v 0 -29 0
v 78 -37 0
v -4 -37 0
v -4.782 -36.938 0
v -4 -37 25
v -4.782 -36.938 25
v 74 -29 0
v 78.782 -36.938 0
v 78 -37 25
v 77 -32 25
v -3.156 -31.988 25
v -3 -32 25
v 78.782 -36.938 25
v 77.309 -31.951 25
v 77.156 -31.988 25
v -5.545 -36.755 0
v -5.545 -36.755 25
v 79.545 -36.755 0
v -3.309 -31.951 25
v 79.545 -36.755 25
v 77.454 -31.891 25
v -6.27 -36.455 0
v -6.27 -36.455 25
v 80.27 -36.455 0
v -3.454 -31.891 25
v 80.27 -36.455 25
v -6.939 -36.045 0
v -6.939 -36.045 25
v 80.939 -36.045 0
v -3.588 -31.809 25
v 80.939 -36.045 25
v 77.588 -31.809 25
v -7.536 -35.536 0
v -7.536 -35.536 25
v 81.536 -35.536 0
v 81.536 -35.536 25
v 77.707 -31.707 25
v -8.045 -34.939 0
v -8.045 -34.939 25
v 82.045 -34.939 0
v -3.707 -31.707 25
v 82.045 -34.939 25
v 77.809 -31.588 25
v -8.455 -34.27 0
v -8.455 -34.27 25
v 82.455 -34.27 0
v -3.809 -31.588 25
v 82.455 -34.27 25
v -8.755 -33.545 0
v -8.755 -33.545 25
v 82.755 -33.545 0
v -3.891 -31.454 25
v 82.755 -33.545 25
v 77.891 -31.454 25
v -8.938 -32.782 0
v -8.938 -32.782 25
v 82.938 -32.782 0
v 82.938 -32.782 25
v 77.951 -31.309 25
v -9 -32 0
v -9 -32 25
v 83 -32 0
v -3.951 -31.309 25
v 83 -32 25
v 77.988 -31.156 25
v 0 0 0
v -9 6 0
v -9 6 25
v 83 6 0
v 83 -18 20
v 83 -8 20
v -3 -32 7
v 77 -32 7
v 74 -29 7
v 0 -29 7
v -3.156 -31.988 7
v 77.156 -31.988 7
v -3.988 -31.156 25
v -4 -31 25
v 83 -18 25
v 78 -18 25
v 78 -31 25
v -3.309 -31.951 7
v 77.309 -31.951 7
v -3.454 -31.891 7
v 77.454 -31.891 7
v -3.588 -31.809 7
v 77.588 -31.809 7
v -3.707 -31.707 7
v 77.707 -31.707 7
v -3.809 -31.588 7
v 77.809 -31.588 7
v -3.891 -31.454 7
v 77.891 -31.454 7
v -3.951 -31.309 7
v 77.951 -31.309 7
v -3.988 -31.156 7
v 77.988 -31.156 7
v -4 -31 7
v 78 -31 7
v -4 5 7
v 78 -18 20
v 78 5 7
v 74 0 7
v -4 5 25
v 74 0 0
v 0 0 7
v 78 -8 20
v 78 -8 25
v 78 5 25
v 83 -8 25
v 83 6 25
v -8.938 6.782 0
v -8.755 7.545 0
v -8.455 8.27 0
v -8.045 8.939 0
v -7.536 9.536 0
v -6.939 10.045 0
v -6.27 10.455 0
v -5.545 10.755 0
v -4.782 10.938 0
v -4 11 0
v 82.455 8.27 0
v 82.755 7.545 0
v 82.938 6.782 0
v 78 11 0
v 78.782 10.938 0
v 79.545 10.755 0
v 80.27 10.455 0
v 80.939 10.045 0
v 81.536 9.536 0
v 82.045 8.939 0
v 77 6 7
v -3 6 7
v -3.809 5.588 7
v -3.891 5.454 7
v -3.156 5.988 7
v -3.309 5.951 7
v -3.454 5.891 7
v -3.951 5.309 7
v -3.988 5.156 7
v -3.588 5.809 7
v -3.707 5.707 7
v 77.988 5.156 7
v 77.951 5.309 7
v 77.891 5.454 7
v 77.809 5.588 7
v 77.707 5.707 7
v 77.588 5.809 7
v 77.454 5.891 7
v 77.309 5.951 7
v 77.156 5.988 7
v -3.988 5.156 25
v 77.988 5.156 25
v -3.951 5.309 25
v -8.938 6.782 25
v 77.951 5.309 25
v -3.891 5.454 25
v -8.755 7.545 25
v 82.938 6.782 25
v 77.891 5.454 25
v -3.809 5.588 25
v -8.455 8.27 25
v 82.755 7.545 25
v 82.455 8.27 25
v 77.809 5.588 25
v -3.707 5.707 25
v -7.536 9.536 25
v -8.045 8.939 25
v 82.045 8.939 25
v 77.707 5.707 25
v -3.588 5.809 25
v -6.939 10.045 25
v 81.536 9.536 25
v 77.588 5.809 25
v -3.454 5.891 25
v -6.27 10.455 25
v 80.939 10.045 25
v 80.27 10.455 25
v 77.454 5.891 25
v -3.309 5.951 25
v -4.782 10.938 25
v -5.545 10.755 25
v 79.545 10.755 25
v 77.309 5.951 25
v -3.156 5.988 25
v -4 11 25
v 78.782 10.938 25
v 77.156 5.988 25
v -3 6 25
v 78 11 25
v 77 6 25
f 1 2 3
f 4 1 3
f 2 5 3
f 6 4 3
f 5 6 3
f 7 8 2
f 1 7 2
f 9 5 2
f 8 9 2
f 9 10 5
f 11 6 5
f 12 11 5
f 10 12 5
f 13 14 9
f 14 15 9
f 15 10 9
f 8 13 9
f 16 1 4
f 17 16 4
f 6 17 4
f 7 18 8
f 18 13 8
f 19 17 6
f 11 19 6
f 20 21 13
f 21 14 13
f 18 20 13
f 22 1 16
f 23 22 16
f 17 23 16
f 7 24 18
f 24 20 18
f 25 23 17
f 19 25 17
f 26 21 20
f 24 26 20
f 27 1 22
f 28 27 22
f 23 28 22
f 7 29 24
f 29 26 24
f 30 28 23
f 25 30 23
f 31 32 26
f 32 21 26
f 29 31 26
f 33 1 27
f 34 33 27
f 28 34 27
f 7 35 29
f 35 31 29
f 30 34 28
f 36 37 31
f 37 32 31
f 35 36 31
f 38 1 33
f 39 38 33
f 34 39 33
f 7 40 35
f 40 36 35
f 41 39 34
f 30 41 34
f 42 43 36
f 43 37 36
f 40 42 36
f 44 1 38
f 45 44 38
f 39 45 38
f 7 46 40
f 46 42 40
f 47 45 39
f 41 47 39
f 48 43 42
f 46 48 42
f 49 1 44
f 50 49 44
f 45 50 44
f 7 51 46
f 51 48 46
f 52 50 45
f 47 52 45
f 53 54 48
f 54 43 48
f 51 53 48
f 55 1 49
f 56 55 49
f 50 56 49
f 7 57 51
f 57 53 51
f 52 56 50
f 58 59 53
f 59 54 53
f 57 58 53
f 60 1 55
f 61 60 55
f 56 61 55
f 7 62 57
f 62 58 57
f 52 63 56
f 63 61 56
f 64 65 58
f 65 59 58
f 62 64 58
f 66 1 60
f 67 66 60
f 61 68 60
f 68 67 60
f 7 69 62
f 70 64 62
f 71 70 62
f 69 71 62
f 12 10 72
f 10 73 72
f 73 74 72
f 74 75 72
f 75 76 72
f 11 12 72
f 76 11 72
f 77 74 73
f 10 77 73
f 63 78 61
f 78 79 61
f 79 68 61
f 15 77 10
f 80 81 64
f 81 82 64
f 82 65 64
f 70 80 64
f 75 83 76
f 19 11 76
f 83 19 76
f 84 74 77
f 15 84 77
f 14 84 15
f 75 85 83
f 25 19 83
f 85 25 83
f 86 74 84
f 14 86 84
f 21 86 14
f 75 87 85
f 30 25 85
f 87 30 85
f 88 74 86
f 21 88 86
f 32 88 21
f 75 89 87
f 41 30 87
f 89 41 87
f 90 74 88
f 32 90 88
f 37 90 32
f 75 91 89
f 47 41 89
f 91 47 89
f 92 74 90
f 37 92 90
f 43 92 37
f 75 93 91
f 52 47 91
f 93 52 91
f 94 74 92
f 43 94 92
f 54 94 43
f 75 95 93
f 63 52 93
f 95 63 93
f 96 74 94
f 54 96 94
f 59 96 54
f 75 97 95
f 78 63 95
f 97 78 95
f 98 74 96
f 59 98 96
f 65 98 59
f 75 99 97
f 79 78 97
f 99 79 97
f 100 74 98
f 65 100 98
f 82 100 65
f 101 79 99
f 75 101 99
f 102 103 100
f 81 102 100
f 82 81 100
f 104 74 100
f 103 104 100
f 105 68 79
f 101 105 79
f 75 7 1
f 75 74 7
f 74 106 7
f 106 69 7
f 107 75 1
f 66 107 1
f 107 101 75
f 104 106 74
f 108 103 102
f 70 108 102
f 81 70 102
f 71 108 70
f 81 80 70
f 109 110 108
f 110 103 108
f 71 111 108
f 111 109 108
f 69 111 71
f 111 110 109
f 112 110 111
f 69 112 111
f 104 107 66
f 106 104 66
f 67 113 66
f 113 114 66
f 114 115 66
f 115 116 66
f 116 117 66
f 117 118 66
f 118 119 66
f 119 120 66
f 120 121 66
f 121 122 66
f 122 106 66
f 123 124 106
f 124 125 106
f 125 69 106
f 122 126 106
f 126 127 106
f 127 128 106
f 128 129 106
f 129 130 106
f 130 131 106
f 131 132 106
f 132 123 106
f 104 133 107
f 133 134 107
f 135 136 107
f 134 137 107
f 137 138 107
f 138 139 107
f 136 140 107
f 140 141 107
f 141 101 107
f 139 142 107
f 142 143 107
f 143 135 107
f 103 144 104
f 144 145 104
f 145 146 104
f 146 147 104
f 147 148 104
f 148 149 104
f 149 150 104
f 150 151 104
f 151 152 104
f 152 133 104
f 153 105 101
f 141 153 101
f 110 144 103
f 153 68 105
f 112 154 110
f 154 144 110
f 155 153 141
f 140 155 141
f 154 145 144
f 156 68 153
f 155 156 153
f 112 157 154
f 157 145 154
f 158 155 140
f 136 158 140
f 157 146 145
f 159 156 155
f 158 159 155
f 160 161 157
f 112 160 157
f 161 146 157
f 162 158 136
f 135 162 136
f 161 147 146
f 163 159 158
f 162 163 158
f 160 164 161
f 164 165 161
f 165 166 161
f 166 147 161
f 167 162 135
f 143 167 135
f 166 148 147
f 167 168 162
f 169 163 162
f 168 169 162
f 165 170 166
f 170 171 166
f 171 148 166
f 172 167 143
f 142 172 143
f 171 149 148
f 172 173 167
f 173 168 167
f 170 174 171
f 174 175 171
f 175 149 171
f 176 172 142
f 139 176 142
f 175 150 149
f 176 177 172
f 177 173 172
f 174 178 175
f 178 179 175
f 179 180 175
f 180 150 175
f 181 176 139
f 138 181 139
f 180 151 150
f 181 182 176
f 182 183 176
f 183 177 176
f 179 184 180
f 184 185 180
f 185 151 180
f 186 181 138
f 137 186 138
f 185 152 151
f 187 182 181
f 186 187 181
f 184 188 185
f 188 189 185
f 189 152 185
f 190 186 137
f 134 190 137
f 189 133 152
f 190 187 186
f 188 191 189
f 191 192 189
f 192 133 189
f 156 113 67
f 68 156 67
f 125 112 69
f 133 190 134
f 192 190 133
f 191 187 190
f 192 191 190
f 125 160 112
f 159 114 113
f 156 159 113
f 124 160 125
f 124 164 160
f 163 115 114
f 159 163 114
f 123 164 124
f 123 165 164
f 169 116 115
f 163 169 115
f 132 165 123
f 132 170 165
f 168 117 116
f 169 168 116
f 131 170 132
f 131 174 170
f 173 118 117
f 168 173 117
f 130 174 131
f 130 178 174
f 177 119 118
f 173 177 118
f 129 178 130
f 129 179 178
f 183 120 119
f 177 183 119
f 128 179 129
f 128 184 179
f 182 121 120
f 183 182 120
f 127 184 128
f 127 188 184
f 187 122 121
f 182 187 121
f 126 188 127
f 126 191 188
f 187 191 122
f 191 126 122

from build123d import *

# Parameters (mm, degrees)
CROQUIS7_W              = 92
CROQUIS7_H              = 48
CROQUIS7_W_2            = 74
CROQUIS7_H_2            = 29
SALIENTE_EXTRUIR5_DEPTH = 25
CROQUIS8_W              = 82
CROQUIS8_H              = 38
CORTAR_EXTRUIR3_DEPTH   = 18
REDONDEO1_R             = 5
REDONDEO2_R             = 1
CROQUIS10_W             = 10
CROQUIS10_H             = 10
CORTAR_EXTRUIR4_DEPTH   = 20


with BuildPart() as part:
    # Croquis7 → Saliente-Extruir5 (new body)
    with BuildSketch(Plane.XY):
        with Locations((37, -13)):
            Rectangle(CROQUIS7_W, CROQUIS7_H)
        with Locations((37, -14.5)):
            Rectangle(CROQUIS7_W_2, CROQUIS7_H_2, mode=Mode.SUBTRACT)
    extrude(amount=SALIENTE_EXTRUIR5_DEPTH)

    # Croquis8 → Cortar-Extruir3 (cut)
    with BuildSketch(Plane.XY.offset(25)):
        with Locations((37, -13)):
            Rectangle(CROQUIS8_W, CROQUIS8_H)
    extrude(amount=-CORTAR_EXTRUIR3_DEPTH, mode=Mode.SUBTRACT)

    # Redondeo1
    redondeo1_edges = [part.edges().sort_by_distance(p)[0] for p in [
        (-9, 11, 12.5),
        (83, 11, 12.5),
        (83, -37, 12.5),
        (-9, -37, 12.5),
    ]]
    fillet(redondeo1_edges, radius=REDONDEO1_R)

    # Redondeo2
    redondeo2_edges = [part.edges().sort_by_distance(p)[0] for p in [
        (-4, -32, 16),
        (-4, 6, 16),
        (78, 6, 16),
        (78, -32, 16),
    ]]
    fillet(redondeo2_edges, radius=REDONDEO2_R)

    # Croquis10 → Cortar-Extruir4 (cut)
    with BuildSketch(Plane(origin=(83, 0, 0), x_dir=(0, 0, -1), z_dir=(1, 0, 0))):
        with Locations((-25, -13)):
            Rectangle(CROQUIS10_W, CROQUIS10_H)
    extrude(amount=-CORTAR_EXTRUIR4_DEPTH, mode=Mode.SUBTRACT)


solid = part.part
